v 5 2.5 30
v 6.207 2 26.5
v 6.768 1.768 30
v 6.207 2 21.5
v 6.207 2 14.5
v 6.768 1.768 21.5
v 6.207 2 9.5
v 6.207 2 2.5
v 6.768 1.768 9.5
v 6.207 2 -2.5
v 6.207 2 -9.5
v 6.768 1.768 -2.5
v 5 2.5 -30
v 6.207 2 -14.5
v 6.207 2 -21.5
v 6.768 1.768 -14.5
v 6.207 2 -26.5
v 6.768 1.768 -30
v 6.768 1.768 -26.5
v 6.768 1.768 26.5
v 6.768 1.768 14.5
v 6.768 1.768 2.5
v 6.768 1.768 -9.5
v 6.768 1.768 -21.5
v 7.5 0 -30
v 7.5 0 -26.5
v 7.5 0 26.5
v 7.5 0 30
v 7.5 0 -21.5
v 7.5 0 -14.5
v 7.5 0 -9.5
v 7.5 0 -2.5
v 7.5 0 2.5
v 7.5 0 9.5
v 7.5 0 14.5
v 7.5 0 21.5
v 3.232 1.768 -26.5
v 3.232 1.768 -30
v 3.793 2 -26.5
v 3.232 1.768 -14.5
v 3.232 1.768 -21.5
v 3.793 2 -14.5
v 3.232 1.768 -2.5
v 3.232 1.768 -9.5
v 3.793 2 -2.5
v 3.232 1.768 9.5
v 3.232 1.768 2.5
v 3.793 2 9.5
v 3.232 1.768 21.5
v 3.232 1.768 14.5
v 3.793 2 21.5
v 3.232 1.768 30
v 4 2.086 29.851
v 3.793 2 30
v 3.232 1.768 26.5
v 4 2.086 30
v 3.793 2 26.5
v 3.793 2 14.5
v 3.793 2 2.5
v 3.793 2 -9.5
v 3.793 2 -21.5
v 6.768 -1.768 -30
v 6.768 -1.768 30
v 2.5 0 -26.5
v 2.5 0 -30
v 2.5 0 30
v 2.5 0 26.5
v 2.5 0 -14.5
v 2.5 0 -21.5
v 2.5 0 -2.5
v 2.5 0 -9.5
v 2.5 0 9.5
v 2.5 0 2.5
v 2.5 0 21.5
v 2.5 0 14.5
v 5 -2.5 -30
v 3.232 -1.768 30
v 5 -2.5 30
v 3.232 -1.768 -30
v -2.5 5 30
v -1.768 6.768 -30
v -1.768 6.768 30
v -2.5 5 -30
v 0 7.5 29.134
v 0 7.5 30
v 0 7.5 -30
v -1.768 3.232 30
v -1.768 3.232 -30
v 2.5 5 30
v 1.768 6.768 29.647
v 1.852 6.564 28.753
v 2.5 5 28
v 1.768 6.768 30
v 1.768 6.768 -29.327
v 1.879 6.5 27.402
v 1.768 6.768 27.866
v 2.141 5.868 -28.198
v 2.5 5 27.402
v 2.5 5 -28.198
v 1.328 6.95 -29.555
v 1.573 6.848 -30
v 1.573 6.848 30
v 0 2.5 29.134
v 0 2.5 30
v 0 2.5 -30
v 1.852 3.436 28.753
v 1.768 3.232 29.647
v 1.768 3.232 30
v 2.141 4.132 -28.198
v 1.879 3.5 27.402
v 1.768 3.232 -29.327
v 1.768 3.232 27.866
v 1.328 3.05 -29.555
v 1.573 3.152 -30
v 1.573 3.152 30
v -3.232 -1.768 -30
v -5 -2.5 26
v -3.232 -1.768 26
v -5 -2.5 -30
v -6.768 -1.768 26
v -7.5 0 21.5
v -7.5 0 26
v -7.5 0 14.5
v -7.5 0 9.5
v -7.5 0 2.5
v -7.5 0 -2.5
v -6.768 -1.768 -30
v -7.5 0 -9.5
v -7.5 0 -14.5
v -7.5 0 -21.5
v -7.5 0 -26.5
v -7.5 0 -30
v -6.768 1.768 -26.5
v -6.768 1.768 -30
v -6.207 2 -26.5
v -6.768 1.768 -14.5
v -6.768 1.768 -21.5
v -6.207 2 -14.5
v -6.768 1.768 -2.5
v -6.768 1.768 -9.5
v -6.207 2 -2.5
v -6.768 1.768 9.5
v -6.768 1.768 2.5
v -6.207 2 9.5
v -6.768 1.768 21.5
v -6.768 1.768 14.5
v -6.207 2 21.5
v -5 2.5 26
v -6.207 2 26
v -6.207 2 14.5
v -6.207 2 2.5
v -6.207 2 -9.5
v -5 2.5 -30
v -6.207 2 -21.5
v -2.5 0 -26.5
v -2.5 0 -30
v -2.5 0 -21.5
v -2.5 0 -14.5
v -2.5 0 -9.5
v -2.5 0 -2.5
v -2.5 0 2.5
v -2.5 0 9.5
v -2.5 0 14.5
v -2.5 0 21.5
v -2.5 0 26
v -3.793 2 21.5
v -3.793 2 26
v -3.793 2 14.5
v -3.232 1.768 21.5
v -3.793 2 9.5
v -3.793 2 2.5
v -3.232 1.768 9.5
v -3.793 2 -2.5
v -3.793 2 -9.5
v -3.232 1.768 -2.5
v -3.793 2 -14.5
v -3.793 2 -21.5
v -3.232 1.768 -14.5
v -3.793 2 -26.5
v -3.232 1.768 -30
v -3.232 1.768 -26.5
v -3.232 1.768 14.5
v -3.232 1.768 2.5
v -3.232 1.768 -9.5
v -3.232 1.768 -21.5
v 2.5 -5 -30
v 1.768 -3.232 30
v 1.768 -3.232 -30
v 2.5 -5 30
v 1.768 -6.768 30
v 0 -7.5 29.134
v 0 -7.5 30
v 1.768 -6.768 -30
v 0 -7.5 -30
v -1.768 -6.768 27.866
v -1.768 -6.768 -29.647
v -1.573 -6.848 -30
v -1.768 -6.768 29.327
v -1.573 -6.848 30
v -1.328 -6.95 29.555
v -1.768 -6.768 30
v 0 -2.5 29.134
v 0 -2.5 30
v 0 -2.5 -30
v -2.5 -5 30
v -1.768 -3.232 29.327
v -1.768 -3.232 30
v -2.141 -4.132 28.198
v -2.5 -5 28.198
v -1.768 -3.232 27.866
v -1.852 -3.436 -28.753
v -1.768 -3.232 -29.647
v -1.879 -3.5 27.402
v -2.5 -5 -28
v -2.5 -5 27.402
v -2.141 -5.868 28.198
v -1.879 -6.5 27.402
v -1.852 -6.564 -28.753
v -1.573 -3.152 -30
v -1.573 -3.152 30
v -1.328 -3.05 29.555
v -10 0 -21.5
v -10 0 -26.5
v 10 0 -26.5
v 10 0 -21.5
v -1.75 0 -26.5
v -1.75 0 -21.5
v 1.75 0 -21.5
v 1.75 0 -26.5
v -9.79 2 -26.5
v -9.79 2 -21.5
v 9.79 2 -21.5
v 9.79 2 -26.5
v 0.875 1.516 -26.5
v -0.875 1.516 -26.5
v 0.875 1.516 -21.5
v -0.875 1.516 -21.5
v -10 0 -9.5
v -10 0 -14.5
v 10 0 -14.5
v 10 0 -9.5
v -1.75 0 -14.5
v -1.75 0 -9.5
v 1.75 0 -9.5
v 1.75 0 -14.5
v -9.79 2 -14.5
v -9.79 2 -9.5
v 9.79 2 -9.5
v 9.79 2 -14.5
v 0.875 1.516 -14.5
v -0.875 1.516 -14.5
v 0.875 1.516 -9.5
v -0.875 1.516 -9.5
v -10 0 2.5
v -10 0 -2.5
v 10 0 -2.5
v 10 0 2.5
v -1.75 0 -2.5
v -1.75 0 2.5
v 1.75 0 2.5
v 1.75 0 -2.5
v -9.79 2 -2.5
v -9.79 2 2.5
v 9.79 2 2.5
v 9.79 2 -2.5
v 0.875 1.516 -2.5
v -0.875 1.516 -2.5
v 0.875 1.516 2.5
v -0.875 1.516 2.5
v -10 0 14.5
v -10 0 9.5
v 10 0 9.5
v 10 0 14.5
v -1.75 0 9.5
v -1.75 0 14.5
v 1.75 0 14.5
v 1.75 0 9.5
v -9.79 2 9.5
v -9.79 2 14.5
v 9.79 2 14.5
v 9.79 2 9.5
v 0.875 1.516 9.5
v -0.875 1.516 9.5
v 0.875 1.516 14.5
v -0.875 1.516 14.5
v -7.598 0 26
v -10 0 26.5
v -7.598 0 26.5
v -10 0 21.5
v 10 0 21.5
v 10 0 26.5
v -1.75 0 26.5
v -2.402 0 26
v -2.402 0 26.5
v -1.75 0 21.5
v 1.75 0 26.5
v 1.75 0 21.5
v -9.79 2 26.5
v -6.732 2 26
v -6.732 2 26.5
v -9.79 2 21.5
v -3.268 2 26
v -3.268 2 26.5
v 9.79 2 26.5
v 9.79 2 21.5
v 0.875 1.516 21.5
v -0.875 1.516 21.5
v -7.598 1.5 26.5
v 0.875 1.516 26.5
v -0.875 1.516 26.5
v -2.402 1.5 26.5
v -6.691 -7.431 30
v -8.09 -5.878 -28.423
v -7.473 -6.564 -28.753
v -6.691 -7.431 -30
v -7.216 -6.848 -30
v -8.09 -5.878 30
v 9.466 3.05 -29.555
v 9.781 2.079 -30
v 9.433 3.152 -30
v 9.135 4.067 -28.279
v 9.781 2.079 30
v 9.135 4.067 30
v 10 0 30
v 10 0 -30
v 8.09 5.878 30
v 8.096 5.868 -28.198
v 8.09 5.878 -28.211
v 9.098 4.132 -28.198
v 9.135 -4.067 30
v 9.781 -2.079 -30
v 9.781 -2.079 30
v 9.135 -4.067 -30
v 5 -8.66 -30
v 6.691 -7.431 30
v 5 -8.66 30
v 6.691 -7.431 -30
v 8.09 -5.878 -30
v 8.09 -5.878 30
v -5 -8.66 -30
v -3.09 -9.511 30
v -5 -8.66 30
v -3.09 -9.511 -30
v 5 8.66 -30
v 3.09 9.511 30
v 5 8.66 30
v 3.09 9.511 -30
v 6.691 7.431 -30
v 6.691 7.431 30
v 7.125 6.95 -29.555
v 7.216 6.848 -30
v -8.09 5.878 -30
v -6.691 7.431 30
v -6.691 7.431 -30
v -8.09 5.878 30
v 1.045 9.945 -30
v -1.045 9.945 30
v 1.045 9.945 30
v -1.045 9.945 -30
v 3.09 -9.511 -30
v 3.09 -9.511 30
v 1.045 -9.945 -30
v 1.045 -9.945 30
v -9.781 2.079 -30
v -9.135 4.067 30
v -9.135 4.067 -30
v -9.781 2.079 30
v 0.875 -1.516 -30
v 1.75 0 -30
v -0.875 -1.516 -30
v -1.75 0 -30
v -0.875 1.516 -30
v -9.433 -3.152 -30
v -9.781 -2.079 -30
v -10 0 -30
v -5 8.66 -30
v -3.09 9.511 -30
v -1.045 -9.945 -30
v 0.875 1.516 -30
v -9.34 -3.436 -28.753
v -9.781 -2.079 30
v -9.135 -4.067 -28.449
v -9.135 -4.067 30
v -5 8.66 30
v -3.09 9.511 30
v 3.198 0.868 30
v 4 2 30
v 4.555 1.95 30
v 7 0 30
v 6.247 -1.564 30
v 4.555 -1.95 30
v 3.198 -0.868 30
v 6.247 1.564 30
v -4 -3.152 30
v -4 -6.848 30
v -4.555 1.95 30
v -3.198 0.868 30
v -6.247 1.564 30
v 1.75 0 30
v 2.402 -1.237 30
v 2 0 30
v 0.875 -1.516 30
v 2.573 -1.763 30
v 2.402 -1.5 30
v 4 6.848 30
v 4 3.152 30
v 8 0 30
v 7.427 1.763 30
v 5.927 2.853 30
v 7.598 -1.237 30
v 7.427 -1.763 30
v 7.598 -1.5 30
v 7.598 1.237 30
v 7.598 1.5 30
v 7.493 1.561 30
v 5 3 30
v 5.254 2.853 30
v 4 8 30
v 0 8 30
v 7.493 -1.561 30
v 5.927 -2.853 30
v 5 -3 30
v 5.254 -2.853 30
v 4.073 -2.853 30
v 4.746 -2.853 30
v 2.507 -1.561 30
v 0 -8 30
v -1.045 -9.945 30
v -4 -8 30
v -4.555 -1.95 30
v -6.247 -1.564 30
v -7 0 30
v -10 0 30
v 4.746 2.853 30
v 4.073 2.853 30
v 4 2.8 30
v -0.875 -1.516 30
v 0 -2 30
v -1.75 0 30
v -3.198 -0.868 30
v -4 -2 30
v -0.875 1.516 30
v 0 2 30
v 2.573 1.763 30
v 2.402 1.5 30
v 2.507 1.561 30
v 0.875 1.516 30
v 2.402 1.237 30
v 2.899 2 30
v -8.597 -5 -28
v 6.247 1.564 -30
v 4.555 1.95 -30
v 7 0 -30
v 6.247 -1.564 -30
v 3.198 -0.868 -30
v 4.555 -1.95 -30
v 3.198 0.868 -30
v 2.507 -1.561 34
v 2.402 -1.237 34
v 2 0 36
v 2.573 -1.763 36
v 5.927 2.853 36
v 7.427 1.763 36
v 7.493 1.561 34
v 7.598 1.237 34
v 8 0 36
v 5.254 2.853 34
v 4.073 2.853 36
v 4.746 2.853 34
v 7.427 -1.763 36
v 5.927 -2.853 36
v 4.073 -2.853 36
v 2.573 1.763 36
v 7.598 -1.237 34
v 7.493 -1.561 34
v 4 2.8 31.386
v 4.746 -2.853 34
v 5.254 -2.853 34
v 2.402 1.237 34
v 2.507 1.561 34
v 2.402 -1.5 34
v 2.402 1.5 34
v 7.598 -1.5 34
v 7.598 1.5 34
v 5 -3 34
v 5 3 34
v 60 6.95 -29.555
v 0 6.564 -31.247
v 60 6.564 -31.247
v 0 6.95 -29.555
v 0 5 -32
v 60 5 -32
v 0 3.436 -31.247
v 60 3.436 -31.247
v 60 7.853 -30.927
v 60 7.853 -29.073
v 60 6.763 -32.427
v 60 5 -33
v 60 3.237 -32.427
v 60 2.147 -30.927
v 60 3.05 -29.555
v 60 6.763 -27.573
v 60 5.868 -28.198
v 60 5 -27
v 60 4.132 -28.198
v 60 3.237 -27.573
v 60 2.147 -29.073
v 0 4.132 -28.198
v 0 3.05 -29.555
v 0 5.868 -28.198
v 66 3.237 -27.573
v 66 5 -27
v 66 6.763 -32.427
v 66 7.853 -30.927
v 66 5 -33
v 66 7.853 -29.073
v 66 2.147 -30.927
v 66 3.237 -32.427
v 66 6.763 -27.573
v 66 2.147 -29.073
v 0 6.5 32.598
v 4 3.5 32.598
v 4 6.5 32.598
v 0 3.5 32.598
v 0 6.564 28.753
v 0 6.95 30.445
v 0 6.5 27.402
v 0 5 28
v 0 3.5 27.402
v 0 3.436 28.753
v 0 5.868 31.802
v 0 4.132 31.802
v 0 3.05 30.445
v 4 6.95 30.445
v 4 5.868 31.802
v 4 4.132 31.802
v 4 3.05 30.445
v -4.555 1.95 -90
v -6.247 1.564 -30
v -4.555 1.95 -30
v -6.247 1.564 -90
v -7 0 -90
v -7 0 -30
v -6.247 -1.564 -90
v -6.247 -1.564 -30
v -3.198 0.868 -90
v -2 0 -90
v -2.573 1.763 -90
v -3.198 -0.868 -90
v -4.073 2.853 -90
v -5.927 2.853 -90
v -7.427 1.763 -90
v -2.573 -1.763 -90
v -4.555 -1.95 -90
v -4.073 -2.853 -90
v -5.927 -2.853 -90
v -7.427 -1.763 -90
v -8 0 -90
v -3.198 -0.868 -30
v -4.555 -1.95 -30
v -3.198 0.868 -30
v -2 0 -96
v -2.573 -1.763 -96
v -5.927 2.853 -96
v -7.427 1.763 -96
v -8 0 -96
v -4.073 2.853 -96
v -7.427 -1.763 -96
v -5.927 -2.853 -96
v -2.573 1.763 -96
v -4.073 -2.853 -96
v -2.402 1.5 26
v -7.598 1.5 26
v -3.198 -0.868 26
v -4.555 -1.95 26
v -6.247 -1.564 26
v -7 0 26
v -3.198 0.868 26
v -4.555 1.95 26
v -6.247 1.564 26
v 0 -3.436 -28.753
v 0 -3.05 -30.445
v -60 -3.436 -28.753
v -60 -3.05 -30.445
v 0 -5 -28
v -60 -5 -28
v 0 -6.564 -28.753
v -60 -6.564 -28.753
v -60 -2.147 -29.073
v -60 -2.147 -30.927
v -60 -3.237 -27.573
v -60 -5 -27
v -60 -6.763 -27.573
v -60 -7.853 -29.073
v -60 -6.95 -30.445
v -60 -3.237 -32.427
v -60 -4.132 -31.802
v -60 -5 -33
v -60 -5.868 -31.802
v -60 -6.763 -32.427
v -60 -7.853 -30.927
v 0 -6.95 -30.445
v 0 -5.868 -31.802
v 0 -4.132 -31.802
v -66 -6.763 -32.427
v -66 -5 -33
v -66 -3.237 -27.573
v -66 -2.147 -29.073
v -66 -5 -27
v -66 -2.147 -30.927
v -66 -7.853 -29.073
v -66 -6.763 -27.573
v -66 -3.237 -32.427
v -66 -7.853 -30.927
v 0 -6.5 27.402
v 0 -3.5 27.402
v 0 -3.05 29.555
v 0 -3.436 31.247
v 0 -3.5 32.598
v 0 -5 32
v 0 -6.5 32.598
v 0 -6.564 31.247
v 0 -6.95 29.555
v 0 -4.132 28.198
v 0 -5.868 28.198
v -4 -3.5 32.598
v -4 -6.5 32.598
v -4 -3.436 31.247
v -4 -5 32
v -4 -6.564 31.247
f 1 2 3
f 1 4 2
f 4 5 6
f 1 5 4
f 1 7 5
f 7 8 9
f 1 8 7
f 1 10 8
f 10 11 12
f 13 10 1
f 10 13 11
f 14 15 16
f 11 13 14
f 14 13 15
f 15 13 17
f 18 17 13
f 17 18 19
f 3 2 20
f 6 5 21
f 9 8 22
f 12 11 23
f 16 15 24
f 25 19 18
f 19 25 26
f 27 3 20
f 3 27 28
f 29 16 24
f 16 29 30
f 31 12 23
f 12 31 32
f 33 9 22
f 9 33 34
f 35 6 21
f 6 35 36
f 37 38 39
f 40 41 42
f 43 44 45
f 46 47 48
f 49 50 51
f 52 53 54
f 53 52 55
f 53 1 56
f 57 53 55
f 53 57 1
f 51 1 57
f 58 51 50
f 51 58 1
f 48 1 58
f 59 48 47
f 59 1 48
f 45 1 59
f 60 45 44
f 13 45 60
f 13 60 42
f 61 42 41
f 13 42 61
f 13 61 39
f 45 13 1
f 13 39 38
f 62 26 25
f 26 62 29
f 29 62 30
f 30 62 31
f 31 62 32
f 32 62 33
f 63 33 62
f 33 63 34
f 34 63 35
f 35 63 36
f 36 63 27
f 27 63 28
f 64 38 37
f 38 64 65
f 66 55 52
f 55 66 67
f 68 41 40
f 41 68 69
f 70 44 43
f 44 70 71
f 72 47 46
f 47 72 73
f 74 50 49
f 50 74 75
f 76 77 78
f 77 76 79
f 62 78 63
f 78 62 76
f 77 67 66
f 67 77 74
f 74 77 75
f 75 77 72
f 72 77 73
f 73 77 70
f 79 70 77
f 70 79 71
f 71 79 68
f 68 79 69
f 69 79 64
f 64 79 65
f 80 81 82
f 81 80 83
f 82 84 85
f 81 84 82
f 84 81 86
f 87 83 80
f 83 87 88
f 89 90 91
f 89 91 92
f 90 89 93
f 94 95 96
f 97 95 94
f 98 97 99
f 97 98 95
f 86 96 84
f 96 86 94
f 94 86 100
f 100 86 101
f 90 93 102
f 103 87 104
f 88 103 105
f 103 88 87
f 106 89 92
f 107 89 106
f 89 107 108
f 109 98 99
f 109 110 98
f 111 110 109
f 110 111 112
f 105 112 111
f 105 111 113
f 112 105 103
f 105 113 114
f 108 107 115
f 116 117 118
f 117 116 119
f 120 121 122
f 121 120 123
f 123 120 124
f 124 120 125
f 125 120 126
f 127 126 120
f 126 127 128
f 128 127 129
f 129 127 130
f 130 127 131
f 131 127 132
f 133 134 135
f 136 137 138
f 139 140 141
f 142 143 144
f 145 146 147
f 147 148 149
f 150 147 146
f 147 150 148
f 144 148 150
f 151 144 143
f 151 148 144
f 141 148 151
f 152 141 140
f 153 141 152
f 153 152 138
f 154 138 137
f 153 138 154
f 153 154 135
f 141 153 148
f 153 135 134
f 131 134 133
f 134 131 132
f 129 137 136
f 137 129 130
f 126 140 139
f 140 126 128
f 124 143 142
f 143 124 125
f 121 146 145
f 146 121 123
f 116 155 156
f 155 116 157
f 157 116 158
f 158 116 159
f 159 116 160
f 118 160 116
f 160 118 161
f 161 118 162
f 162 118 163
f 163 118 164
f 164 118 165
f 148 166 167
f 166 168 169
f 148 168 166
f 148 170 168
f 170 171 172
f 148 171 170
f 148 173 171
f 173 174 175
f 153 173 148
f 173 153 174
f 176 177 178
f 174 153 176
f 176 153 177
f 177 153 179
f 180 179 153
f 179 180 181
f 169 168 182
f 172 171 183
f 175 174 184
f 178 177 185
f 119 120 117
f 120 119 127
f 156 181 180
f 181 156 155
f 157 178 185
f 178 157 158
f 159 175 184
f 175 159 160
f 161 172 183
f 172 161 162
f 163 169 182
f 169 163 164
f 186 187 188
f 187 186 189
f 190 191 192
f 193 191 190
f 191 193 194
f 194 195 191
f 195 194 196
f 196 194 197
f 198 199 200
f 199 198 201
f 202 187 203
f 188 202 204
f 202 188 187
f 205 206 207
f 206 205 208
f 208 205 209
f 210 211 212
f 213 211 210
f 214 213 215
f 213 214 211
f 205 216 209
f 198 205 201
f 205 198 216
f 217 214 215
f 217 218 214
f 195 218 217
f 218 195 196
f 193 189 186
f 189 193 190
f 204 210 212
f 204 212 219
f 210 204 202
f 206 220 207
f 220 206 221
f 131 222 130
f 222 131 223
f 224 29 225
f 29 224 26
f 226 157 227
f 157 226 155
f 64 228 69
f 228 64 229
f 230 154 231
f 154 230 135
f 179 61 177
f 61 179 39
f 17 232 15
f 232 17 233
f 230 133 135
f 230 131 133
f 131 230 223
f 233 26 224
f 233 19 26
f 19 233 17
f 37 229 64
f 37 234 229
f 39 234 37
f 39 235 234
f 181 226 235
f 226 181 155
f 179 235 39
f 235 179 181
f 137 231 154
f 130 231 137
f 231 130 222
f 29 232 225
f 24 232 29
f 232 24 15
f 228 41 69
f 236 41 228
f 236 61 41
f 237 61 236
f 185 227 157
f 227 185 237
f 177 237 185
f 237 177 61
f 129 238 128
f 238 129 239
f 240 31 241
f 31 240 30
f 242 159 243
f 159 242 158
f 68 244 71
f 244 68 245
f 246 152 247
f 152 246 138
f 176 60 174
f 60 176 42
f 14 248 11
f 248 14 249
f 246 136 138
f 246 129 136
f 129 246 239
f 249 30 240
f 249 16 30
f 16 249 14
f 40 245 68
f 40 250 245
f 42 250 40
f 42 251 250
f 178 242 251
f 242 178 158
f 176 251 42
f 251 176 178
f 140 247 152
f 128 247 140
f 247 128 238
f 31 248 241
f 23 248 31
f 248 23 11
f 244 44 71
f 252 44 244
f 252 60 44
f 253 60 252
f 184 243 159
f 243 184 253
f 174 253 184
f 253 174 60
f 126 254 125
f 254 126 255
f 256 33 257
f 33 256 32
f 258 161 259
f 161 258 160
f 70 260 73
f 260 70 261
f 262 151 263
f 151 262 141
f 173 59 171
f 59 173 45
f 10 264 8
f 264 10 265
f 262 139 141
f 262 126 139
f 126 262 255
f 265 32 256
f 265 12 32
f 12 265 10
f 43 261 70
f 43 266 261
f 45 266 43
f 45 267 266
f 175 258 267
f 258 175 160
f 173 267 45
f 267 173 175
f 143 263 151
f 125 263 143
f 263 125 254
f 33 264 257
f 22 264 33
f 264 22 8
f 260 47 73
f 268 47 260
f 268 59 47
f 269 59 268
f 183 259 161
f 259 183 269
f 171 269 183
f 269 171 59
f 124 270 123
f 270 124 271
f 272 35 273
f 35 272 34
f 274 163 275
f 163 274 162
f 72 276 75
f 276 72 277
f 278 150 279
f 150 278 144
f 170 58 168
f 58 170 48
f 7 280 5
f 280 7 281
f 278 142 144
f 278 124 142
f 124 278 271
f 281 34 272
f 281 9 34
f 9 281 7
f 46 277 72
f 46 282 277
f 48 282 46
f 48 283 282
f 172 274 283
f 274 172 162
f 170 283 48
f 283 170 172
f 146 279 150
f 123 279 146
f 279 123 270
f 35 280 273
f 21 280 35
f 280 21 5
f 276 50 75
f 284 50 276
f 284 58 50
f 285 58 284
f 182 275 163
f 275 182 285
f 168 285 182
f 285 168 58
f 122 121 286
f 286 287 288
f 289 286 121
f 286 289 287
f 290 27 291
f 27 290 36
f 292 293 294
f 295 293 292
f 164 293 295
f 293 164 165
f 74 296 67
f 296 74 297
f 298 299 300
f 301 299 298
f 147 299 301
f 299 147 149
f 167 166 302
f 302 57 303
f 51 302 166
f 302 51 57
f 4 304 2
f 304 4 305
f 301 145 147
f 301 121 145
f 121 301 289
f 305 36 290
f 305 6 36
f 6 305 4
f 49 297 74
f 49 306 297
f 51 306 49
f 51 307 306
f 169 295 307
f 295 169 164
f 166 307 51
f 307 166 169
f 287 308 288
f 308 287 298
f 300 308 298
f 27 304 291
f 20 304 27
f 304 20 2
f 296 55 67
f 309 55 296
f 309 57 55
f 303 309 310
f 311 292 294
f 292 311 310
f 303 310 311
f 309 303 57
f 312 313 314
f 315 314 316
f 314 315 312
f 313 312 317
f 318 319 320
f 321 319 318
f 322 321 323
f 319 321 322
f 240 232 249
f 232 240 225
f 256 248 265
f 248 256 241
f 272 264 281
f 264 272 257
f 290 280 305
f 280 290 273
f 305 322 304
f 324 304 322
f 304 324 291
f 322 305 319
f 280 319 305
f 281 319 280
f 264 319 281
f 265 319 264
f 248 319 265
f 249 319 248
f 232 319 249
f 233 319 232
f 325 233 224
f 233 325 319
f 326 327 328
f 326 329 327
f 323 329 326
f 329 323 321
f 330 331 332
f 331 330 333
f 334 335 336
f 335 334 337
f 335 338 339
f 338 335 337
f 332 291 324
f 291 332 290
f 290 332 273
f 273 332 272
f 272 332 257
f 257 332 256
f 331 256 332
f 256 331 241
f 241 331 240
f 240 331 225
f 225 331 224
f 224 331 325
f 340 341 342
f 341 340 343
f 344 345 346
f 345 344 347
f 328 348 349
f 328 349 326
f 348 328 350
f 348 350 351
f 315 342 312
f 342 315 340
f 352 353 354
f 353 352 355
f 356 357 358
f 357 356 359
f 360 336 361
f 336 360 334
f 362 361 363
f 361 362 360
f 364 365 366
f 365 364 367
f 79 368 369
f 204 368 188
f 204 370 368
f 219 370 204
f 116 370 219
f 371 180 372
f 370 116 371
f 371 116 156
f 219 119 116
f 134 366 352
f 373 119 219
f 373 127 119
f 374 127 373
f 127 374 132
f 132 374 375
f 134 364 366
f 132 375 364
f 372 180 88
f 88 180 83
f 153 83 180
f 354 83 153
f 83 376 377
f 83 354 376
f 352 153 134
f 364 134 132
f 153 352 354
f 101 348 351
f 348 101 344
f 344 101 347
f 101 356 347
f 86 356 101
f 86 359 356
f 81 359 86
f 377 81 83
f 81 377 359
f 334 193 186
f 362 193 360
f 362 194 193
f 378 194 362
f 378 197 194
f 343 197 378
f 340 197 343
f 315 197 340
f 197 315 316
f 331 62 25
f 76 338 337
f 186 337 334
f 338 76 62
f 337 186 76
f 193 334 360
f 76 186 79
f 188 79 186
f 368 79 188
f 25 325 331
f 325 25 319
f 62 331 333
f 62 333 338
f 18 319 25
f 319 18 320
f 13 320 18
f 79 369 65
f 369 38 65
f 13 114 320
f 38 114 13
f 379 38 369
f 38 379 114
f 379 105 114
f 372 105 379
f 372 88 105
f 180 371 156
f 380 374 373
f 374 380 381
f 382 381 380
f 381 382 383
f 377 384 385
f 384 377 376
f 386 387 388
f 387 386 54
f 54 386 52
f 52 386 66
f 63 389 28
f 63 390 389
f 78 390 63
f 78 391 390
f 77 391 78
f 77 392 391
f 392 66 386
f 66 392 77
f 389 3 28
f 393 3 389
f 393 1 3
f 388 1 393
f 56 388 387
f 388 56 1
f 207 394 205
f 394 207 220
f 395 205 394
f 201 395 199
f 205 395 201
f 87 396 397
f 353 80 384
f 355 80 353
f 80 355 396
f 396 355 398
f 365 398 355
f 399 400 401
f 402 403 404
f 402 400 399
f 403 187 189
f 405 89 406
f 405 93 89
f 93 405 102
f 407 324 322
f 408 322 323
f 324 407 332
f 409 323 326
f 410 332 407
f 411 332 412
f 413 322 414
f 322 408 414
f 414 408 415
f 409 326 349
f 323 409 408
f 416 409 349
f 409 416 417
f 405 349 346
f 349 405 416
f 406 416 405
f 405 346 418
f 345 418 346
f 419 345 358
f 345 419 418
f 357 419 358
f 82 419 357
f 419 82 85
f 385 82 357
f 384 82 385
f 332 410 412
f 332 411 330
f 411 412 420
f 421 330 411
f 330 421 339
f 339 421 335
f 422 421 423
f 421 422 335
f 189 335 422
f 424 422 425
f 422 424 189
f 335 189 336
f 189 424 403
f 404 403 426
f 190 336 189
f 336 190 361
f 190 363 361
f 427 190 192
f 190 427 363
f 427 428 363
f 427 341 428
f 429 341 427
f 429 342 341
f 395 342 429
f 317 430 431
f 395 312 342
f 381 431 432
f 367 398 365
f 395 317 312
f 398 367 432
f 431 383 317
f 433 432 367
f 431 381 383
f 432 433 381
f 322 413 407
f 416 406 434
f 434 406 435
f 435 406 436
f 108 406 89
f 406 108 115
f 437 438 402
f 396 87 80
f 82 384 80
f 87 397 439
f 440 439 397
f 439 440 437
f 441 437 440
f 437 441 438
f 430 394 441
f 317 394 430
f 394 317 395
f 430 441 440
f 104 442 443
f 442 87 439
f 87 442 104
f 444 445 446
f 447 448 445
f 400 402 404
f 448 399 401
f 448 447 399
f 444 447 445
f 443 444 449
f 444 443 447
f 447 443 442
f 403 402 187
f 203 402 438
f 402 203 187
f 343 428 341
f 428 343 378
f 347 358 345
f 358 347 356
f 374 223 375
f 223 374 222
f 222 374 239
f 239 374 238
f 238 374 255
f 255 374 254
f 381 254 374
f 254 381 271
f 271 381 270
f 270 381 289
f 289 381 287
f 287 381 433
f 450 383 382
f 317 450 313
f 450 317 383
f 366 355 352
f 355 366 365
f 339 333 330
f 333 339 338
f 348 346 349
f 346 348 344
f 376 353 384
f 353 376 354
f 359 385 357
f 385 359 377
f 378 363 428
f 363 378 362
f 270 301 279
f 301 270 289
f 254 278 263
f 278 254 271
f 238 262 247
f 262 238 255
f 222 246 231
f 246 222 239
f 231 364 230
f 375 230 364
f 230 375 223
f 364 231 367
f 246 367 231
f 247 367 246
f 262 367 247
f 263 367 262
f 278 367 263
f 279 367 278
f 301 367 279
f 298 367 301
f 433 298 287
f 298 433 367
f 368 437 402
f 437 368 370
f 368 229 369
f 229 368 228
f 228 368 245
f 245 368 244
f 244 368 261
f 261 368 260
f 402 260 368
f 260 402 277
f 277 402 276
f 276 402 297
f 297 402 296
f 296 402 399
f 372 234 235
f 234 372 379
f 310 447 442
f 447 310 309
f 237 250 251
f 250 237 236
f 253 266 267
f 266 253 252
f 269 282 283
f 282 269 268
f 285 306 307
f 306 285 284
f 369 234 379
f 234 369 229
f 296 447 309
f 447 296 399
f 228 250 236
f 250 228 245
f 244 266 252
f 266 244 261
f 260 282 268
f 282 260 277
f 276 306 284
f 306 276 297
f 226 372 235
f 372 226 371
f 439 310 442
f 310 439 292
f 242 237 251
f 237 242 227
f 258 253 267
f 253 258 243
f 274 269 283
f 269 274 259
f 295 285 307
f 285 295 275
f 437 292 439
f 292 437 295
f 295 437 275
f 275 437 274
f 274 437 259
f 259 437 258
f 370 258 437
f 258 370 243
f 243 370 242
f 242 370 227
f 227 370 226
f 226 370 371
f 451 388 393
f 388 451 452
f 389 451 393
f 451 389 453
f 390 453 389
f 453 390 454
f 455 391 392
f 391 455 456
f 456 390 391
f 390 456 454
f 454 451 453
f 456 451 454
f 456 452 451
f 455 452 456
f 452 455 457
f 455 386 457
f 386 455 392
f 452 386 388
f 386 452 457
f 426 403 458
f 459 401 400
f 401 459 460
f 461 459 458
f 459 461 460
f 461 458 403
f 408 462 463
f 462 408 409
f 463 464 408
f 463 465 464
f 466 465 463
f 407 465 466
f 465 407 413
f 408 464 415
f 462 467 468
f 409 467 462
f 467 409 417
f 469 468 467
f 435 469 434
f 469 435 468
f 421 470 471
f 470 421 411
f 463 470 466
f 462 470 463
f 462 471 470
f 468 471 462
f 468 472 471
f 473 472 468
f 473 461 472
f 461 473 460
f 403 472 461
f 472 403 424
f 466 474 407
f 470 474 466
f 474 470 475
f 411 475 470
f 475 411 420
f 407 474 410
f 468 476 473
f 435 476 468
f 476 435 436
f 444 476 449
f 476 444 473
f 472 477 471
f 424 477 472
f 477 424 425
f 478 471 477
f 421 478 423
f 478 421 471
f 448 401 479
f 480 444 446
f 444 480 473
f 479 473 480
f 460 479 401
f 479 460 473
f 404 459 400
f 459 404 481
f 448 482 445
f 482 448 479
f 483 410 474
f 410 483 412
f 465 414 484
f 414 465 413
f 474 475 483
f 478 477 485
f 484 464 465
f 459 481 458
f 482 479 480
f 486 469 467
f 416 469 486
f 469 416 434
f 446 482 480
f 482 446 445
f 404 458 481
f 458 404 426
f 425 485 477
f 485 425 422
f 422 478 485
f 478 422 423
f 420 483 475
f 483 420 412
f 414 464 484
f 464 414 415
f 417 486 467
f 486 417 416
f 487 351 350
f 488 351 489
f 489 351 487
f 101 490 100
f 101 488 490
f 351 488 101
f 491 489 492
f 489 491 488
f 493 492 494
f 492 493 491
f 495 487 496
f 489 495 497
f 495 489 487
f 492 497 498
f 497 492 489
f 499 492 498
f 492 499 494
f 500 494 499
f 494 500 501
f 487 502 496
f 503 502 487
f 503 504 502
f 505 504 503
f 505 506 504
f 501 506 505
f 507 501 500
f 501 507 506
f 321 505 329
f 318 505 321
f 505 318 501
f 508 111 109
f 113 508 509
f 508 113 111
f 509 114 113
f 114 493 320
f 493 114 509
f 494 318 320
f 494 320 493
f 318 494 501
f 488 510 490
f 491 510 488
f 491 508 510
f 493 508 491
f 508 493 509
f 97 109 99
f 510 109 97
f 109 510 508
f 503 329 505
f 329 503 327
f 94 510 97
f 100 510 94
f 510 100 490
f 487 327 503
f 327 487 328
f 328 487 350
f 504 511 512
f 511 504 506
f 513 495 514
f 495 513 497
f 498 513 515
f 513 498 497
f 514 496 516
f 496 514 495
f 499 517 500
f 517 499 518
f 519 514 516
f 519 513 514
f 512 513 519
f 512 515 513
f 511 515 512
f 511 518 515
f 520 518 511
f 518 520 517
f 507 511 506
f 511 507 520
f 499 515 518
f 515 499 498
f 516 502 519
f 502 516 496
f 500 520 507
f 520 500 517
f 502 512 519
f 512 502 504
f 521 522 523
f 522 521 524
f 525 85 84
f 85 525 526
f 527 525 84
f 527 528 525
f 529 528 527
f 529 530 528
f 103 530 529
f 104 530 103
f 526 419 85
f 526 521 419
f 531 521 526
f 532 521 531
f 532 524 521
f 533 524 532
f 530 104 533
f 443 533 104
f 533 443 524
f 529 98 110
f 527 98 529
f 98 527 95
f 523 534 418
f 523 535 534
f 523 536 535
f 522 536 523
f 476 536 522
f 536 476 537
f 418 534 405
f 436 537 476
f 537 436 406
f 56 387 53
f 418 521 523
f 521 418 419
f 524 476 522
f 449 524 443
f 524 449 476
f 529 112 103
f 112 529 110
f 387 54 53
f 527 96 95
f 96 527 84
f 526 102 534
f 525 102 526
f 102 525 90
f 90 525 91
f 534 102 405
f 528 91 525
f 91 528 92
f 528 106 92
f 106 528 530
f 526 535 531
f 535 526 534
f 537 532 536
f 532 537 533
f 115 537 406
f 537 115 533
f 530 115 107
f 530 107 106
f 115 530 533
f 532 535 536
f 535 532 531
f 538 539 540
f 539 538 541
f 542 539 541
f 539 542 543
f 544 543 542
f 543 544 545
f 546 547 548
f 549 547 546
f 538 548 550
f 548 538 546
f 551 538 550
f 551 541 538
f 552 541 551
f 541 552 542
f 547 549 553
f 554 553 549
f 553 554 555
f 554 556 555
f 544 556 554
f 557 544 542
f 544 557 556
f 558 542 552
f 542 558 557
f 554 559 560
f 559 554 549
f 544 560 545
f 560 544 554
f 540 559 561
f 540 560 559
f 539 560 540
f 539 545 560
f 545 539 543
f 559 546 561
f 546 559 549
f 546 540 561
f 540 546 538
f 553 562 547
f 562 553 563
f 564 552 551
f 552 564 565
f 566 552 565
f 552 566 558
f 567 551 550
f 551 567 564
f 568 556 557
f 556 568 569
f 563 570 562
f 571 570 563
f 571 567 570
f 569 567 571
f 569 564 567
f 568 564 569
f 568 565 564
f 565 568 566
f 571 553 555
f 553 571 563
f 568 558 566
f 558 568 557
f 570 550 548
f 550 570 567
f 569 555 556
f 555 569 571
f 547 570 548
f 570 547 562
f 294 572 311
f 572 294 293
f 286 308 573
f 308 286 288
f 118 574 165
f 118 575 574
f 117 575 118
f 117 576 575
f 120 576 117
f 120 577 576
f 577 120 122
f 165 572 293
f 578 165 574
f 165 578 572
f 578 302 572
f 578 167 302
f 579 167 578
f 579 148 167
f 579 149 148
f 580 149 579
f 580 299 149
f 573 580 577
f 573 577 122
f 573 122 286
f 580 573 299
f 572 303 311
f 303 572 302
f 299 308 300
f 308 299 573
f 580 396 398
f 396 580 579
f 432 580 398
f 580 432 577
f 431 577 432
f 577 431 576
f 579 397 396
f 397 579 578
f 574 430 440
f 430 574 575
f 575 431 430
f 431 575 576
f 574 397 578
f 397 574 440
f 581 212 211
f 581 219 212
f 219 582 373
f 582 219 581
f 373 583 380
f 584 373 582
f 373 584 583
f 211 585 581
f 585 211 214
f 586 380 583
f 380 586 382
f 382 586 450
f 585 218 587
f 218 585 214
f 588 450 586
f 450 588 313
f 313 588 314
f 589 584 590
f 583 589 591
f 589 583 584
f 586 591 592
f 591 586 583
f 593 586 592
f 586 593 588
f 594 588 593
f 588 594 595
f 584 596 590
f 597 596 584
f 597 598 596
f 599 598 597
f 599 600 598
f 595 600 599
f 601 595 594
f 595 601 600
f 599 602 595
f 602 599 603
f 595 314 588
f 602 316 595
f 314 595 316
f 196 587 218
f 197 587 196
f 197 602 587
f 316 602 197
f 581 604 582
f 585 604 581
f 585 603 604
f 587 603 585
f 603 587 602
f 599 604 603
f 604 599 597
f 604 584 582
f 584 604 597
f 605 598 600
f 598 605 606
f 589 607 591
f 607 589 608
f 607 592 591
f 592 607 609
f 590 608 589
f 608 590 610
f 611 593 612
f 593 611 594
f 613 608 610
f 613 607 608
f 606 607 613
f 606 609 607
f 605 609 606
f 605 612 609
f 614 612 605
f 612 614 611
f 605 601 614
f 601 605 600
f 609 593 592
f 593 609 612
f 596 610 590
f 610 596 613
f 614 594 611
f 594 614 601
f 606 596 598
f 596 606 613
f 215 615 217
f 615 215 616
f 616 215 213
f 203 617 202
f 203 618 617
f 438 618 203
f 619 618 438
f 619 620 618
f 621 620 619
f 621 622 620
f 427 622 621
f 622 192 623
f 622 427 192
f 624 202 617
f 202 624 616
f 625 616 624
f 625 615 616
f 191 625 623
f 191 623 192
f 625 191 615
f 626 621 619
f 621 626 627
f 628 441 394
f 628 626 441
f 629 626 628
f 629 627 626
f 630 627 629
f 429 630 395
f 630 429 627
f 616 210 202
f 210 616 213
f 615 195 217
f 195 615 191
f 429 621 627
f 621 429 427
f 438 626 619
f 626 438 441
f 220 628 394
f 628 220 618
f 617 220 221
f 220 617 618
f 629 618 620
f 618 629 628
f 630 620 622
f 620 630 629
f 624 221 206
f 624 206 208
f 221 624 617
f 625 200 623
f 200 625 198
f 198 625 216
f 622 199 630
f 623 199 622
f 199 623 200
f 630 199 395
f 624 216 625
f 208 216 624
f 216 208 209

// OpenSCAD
// Parameters for components
cylinder_diameter = 20;
cylinder_length = 60;  // Adjusted to match the original length
hole_diameter = 3.5;   // Adjusted for a more accurate cavity
threaded_hole_diameter = 5;
groove_depth = 2;  // Increased depth for the grooves
groove_width = 2.5; // Adjusted width for the grooves
bolt_diameter = 4;  // Increased diameter to match the original bolts
bolt_length = 60;   // Increased bolt length
nut_diameter = 6; 
nut_height = 4;     // Increased height for robust nuts

// Coupling Cylinder Function
module coupling_cylinder() {
    // Main body
    difference() {
        cylinder(r=cylinder_diameter / 2, h=cylinder_length, center=true);
        
        // Central hollow cavity
        translate([0, 0, -cylinder_length / 2])
            cylinder(r=hole_diameter / 2, h=cylinder_length * 1.5, center=false);

        // Threaded holes near each end
        for (i=[-1, 1]) {
            for (theta = [0, 90, 180, 270]) {
                translate([
                    (cylinder_diameter / 2 - 5) * cos(theta),  // Adjusted position radius
                    (cylinder_diameter / 2 - 5) * sin(theta),
                    i * (cylinder_length / 2 - 10)
                ])
                rotate([0, 0, theta])
                    cylinder(r=threaded_hole_diameter / 2, h=cylinder_length, center=true);
            }
        }

        // Functional grooves
        for (offset = [-2, -1, 0, 1, 2]) {  // Added extra grooves to match the original design
            translate([0, 0, offset * 12])
                rotate([90, 0, 0])
                    translate([-cylinder_diameter / 2, -groove_width, -groove_depth])
                        cube([cylinder_diameter, groove_width * 2, groove_depth], center=false);
        }
    }
}

// Bolt Function
module bolt() {
    union() {
        // Bolt shaft
        cylinder(r=bolt_diameter / 2, h=bolt_length, center=false);
        
        // Bolt head
        translate([0, 0, bolt_length])
            cylinder(r=bolt_diameter * 1.5 / 2, h=bolt_diameter * 1.5, center=false);  // Adjusted head for proper elevation
    }
}

// Nut Function
module nut() {
    difference() {
        // Outer hexagonal shape
        rotate([0, 0, 30])
            linear_extrude(height=nut_height)
                polygon(points=[
                    [nut_diameter / 2, 0],
                    [nut_diameter / 4, nut_diameter * sqrt(3) / 4],
                    [-nut_diameter / 4, nut_diameter * sqrt(3) / 4],
                    [-nut_diameter / 2, 0],
                    [-nut_diameter / 4, -nut_diameter * sqrt(3) / 4],
                    [nut_diameter / 4, -nut_diameter * sqrt(3) / 4]
                ]);

        // Inner circular hole
        translate([0, 0, -1])
            cylinder(r=bolt_diameter / 2, h=nut_height + 2, center=false);
    }
}

// Assembly
module assembly() {
    // Layer 1: Coupling cylinder
    coupling_cylinder();

    // Layer 2: Bolts and nuts
    for (theta = [0, 90, 180, 270]) {
        // Bolts
        translate([
            (cylinder_diameter / 2 - 5) * cos(theta),  // Adjusted bolt positioning
            (cylinder_diameter / 2 - 5) * sin(theta),
            -bolt_length / 2
        ])
        rotate([0, theta, 0])
            bolt();

        // Nuts
        translate([
            (cylinder_diameter / 2 - 5) * cos(theta),  // Adjusted nut positioning
            (cylinder_diameter / 2 - 5) * sin(theta),
            cylinder_length / 2
        ])
        rotate([0, theta, 0])
            nut();
    }
}

// Render the full assembly
assembly();
